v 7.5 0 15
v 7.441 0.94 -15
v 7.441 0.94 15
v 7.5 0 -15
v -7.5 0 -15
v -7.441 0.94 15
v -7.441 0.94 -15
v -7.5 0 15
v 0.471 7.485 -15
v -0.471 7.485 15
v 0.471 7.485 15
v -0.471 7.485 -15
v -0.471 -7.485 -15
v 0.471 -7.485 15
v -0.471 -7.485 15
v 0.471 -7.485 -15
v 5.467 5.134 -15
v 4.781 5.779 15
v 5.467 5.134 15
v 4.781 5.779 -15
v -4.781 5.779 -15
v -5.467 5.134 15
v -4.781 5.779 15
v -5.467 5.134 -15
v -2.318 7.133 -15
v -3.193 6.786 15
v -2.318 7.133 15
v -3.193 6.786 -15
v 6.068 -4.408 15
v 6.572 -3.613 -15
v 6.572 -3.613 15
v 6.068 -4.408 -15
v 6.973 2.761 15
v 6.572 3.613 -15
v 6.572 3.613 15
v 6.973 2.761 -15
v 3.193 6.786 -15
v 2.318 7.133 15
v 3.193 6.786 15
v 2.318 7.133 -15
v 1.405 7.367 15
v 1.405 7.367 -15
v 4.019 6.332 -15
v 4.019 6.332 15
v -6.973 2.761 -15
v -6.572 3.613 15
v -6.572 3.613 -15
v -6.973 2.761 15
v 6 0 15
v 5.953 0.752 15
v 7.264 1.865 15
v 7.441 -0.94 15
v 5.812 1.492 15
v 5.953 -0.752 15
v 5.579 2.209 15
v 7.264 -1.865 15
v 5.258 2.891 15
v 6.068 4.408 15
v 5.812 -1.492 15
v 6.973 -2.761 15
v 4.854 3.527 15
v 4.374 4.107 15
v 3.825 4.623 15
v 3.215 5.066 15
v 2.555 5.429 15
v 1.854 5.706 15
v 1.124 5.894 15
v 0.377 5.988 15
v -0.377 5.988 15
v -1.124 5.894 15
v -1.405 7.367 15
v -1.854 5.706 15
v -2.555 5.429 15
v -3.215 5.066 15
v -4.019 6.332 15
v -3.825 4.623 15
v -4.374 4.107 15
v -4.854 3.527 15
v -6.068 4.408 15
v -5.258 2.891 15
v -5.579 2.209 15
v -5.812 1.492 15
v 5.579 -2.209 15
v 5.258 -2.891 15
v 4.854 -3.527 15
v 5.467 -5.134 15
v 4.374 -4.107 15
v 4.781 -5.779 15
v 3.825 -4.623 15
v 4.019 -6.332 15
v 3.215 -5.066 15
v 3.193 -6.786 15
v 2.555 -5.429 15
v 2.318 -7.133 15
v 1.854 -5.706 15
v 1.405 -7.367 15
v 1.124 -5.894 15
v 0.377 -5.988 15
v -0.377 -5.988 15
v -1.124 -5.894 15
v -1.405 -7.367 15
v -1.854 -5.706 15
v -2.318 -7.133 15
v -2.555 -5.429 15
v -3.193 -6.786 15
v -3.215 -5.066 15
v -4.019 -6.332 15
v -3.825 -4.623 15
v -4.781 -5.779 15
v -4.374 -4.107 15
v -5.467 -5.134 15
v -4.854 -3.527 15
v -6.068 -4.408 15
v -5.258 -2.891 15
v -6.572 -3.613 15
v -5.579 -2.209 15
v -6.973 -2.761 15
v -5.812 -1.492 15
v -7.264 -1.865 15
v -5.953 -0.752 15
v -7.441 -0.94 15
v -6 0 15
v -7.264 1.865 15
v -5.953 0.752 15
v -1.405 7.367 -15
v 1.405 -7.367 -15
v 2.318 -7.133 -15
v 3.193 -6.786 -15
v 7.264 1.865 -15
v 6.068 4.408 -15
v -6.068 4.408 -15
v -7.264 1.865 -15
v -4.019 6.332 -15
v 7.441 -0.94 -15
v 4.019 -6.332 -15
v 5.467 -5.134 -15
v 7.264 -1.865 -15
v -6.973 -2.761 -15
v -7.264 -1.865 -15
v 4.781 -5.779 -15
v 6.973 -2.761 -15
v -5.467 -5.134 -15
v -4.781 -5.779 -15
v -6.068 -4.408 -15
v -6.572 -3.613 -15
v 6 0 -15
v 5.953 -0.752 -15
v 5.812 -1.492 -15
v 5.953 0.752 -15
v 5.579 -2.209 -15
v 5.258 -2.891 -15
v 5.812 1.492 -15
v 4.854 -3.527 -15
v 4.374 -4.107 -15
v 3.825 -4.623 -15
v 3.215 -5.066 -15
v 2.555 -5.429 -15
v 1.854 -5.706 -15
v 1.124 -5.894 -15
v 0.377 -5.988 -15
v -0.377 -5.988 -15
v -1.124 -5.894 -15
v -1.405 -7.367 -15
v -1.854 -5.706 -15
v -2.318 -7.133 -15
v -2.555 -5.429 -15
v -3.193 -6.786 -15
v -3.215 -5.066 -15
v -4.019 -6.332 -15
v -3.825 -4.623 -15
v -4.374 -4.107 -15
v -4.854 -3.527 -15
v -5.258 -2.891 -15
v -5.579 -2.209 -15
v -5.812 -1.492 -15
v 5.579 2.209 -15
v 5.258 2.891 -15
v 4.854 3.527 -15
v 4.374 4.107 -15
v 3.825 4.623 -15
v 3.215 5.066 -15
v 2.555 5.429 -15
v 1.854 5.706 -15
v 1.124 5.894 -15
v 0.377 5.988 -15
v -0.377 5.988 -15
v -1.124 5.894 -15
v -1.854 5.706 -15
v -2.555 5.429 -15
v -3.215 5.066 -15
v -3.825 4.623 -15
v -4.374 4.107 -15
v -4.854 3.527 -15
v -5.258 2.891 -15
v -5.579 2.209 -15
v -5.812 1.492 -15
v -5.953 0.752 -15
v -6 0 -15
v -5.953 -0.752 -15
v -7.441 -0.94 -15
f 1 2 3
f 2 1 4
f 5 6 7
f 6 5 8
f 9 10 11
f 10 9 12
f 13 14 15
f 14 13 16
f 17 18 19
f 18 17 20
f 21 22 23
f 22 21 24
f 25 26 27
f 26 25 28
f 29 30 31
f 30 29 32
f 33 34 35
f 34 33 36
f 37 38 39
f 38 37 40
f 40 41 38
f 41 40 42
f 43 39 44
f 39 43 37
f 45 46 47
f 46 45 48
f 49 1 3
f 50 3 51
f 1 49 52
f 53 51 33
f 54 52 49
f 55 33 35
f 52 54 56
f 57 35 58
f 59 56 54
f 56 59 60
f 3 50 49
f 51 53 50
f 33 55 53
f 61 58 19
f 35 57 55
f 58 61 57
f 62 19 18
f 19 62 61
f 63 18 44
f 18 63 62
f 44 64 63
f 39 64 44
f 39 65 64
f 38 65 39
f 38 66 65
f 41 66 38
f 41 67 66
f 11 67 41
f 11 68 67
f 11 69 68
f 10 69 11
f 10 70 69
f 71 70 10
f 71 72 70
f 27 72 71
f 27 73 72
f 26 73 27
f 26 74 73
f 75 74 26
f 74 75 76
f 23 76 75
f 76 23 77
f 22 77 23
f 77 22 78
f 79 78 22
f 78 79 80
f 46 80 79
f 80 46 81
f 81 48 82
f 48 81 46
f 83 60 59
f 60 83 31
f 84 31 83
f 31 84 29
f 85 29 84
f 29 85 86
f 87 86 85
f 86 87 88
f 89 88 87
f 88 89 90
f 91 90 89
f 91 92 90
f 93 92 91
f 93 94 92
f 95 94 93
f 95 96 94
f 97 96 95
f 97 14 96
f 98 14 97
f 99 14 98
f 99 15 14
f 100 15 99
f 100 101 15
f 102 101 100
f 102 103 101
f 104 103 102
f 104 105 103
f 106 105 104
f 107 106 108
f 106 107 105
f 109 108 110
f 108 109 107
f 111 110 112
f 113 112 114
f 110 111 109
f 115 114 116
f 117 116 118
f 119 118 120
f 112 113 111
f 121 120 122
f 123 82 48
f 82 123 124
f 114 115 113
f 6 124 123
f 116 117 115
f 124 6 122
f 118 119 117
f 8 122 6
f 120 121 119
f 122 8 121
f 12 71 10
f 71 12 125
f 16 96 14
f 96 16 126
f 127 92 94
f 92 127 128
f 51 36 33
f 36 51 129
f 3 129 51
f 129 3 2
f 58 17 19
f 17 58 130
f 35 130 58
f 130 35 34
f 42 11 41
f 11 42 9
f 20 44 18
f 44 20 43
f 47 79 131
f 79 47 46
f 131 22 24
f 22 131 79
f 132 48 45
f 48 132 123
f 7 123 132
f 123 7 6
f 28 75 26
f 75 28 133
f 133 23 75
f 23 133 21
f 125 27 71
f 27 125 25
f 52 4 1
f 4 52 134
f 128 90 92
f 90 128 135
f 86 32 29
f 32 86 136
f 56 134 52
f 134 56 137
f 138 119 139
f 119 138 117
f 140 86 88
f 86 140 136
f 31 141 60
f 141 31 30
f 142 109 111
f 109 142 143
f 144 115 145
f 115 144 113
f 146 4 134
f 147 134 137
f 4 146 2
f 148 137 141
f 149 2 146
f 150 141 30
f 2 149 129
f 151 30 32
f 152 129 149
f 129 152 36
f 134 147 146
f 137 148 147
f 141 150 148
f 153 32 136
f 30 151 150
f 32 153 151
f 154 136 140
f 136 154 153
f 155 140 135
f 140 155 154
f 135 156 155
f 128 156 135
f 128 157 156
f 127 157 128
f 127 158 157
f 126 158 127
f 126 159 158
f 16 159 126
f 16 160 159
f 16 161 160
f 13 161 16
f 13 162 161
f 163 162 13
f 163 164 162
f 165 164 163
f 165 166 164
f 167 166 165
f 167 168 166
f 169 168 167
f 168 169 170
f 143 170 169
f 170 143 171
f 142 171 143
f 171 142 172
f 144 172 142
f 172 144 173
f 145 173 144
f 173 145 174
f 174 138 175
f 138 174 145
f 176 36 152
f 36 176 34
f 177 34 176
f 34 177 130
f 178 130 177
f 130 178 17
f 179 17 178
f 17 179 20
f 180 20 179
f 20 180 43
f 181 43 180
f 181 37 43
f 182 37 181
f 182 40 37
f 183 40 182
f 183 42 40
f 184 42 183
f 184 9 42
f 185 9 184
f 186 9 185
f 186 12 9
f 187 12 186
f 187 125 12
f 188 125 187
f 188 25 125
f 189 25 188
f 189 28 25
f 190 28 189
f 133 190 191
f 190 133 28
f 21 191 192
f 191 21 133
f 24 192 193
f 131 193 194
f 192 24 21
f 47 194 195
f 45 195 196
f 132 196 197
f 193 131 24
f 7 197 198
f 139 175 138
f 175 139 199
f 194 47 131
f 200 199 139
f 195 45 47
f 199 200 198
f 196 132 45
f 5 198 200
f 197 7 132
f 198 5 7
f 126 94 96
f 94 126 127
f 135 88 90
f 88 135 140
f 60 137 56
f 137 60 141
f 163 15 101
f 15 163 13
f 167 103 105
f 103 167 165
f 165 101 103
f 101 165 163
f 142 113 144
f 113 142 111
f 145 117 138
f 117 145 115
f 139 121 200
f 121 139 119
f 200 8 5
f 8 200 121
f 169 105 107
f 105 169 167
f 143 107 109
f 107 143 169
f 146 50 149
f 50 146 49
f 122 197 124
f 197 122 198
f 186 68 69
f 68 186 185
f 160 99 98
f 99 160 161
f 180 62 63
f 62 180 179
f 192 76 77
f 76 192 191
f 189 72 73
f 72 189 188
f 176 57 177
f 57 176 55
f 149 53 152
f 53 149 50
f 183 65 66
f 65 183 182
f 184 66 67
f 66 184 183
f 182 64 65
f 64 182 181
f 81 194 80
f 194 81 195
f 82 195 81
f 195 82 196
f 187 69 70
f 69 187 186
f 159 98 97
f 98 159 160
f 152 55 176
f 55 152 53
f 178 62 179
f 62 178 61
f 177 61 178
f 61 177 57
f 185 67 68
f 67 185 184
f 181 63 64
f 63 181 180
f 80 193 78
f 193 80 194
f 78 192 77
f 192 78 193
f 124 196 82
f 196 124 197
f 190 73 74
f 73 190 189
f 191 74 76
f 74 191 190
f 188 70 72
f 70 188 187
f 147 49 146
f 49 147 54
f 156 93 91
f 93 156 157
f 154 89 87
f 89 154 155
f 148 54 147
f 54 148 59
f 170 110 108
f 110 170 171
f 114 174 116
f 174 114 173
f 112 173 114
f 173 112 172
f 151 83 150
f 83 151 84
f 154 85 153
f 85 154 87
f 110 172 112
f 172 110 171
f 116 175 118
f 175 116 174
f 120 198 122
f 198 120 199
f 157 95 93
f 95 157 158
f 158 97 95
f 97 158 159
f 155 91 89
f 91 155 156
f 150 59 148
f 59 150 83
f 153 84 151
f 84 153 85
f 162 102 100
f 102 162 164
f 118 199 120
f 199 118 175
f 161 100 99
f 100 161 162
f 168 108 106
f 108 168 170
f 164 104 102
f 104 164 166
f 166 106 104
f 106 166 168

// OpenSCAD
$fn = 50;


difference() {
	union() {
		translate(v = [0, 0, -15.0000000000]) {
			cylinder(h = 30, r = 7.5000000000);
		}
	}
	union() {
		translate(v = [0, 0, -100.0000000000]) {
			cylinder(h = 200, r = 6);
		}
	}
}
